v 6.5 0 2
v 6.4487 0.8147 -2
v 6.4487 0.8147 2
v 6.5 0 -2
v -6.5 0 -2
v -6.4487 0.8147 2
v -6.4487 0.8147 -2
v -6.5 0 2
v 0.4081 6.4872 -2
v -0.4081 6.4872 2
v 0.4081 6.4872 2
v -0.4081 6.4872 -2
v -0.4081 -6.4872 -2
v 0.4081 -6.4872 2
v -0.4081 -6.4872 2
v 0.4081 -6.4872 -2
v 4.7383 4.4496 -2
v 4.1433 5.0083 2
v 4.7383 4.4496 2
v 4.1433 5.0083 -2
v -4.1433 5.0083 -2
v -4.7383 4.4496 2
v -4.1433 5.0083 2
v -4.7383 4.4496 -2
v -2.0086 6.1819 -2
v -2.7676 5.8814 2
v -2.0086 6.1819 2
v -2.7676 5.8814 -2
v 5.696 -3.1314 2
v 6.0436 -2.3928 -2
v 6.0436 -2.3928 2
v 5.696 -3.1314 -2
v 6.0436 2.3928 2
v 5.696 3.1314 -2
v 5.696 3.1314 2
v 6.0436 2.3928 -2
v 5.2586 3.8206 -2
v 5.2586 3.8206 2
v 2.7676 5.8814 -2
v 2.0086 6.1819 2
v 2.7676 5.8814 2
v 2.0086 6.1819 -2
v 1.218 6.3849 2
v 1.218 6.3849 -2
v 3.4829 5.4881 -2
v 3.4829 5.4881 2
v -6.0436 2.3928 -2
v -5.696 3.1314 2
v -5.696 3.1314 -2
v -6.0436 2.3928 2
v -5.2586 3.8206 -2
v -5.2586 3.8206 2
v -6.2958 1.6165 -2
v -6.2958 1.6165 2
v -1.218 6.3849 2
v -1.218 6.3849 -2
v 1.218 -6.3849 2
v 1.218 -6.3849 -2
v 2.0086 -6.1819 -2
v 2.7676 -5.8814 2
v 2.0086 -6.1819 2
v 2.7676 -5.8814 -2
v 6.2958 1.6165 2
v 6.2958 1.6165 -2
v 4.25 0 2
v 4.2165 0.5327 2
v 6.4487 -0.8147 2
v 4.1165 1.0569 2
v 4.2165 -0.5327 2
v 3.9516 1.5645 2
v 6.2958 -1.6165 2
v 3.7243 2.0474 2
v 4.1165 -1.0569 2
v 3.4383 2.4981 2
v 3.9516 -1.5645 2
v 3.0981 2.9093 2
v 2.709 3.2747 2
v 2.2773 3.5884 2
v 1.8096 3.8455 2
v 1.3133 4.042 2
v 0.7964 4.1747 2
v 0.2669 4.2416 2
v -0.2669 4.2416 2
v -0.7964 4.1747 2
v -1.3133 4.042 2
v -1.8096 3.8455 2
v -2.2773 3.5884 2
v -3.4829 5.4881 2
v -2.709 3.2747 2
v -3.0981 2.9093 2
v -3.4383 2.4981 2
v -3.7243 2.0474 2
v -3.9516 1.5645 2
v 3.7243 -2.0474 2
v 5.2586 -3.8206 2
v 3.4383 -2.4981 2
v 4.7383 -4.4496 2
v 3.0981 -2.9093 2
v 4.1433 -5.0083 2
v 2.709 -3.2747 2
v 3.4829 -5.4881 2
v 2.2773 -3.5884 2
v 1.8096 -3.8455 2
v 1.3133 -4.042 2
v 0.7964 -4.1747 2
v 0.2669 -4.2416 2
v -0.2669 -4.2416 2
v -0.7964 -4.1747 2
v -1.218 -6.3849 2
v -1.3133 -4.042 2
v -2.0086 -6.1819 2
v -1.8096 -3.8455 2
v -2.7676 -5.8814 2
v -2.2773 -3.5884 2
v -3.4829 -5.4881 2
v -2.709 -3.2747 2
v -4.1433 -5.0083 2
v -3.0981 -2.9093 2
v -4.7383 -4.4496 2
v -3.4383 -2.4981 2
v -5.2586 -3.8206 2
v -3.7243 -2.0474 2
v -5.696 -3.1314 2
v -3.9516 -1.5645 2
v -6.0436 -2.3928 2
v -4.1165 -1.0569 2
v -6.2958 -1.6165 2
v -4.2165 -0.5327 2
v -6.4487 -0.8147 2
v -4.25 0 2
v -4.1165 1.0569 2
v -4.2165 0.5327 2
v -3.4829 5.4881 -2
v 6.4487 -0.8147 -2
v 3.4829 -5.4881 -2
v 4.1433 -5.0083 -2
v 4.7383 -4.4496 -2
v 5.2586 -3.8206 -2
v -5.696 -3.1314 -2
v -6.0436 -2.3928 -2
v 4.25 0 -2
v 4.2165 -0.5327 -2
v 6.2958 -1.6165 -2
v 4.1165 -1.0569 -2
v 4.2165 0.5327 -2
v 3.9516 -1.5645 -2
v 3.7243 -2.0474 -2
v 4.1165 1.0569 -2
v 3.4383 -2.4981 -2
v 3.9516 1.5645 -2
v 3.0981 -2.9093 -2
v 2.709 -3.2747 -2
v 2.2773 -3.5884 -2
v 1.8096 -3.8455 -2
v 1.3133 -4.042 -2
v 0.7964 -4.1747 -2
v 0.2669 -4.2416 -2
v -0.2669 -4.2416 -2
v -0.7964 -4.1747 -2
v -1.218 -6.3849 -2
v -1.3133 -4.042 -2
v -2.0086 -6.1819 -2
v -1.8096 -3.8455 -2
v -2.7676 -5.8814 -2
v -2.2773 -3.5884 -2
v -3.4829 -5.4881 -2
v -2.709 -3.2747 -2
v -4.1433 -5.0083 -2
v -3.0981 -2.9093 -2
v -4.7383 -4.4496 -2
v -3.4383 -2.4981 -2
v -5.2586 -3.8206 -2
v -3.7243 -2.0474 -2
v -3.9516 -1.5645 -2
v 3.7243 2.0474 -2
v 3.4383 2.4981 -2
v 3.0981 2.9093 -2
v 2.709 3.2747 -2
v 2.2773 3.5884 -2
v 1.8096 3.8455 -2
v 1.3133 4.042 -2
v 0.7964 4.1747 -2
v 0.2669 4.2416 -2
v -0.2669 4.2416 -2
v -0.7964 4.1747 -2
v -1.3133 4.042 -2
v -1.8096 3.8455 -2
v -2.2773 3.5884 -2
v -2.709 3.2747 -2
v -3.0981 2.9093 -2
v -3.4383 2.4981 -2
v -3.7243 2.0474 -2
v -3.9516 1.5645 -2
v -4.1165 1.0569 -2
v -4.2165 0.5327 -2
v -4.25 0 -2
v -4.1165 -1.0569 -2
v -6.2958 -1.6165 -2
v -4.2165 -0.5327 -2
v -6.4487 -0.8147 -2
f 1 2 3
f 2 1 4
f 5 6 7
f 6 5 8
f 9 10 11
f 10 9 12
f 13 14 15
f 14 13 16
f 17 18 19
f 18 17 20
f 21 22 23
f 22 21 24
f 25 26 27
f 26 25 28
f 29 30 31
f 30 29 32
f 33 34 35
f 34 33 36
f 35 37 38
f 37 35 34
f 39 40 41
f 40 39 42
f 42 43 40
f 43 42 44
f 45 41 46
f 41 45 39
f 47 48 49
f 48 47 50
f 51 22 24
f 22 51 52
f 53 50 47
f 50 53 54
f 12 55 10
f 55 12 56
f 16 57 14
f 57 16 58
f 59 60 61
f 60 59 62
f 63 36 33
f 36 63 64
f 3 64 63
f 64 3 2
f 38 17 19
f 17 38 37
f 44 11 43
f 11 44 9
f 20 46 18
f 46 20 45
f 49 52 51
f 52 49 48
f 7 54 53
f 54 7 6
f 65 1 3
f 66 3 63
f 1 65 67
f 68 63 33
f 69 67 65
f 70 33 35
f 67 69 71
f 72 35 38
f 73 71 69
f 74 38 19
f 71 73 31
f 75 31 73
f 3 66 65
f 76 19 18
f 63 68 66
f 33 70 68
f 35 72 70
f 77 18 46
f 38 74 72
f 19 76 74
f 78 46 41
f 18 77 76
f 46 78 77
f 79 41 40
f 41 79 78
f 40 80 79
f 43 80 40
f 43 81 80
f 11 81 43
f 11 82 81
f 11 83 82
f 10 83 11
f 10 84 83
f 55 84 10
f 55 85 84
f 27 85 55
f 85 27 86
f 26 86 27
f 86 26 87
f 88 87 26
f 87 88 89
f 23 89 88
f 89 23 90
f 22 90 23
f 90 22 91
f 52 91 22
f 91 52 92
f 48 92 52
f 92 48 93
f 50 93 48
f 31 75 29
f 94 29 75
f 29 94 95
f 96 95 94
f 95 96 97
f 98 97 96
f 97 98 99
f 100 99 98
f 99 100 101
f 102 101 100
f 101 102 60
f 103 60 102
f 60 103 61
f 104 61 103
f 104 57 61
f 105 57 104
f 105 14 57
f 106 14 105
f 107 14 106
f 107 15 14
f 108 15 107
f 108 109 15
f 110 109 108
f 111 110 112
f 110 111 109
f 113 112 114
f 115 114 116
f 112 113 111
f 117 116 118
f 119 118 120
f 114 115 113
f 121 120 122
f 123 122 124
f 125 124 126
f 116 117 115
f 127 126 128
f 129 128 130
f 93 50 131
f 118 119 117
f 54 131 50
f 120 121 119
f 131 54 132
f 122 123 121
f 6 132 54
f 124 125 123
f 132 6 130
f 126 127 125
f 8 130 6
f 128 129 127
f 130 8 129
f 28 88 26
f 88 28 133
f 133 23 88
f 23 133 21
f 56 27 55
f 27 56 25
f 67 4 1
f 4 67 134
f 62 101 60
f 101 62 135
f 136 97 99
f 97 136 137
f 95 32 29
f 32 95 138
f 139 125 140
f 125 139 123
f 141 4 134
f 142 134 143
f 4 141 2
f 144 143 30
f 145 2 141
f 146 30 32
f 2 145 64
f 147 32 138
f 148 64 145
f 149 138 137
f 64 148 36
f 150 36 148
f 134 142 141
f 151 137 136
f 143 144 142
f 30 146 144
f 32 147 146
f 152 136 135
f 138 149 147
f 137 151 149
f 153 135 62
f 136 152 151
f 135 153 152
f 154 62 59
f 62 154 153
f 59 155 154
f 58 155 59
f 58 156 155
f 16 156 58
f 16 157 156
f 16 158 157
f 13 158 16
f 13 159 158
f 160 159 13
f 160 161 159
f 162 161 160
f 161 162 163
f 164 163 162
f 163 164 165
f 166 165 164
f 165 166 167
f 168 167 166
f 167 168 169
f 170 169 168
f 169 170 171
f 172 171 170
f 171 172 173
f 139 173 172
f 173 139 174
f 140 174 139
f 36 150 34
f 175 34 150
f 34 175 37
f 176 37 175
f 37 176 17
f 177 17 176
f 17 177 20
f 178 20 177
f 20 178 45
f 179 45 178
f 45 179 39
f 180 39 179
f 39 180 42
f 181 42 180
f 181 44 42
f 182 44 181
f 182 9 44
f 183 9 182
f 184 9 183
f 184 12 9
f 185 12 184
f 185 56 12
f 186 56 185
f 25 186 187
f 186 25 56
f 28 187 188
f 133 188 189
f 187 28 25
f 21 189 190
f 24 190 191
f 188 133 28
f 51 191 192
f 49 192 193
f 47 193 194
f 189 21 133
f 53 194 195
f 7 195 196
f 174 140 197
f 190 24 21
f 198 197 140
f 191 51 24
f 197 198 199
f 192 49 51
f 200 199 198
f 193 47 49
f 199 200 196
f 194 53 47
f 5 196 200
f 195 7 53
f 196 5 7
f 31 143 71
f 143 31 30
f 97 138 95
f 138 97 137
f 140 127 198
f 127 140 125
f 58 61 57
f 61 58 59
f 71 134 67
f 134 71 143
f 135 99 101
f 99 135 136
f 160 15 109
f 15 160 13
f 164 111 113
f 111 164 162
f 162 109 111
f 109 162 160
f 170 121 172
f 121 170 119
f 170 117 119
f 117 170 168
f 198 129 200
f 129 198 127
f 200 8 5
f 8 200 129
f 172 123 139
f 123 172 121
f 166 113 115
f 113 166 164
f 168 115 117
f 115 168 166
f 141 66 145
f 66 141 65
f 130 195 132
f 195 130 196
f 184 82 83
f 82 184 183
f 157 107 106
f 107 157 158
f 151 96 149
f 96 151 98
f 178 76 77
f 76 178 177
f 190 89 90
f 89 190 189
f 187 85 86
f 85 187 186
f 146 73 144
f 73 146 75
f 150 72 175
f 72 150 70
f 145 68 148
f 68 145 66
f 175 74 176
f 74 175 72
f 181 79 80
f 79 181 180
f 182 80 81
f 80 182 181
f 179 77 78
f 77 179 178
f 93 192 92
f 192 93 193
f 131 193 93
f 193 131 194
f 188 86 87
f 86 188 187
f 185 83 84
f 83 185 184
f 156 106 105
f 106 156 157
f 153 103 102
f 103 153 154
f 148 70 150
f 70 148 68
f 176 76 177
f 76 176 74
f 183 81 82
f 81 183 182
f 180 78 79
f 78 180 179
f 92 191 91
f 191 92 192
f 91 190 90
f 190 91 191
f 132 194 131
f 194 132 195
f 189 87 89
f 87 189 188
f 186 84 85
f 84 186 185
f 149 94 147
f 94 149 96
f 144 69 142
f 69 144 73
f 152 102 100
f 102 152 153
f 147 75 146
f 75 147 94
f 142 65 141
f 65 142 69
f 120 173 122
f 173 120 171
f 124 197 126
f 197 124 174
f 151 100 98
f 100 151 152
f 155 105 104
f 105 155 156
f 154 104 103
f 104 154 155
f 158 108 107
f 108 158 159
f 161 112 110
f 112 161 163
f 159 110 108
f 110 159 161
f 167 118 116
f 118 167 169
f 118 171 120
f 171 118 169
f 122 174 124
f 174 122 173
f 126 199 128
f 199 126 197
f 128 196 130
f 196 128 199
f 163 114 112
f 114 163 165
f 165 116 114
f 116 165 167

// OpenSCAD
$fn = 50;


difference() {
	union() {
		translate(v = [0, 0, -2.0000000000]) {
			cylinder(h = 4, r = 6.5000000000);
		}
	}
	union() {
		translate(v = [0, 0, -100.0000000000]) {
			cylinder(h = 200, r = 4.2500000000);
		}
	}
}
